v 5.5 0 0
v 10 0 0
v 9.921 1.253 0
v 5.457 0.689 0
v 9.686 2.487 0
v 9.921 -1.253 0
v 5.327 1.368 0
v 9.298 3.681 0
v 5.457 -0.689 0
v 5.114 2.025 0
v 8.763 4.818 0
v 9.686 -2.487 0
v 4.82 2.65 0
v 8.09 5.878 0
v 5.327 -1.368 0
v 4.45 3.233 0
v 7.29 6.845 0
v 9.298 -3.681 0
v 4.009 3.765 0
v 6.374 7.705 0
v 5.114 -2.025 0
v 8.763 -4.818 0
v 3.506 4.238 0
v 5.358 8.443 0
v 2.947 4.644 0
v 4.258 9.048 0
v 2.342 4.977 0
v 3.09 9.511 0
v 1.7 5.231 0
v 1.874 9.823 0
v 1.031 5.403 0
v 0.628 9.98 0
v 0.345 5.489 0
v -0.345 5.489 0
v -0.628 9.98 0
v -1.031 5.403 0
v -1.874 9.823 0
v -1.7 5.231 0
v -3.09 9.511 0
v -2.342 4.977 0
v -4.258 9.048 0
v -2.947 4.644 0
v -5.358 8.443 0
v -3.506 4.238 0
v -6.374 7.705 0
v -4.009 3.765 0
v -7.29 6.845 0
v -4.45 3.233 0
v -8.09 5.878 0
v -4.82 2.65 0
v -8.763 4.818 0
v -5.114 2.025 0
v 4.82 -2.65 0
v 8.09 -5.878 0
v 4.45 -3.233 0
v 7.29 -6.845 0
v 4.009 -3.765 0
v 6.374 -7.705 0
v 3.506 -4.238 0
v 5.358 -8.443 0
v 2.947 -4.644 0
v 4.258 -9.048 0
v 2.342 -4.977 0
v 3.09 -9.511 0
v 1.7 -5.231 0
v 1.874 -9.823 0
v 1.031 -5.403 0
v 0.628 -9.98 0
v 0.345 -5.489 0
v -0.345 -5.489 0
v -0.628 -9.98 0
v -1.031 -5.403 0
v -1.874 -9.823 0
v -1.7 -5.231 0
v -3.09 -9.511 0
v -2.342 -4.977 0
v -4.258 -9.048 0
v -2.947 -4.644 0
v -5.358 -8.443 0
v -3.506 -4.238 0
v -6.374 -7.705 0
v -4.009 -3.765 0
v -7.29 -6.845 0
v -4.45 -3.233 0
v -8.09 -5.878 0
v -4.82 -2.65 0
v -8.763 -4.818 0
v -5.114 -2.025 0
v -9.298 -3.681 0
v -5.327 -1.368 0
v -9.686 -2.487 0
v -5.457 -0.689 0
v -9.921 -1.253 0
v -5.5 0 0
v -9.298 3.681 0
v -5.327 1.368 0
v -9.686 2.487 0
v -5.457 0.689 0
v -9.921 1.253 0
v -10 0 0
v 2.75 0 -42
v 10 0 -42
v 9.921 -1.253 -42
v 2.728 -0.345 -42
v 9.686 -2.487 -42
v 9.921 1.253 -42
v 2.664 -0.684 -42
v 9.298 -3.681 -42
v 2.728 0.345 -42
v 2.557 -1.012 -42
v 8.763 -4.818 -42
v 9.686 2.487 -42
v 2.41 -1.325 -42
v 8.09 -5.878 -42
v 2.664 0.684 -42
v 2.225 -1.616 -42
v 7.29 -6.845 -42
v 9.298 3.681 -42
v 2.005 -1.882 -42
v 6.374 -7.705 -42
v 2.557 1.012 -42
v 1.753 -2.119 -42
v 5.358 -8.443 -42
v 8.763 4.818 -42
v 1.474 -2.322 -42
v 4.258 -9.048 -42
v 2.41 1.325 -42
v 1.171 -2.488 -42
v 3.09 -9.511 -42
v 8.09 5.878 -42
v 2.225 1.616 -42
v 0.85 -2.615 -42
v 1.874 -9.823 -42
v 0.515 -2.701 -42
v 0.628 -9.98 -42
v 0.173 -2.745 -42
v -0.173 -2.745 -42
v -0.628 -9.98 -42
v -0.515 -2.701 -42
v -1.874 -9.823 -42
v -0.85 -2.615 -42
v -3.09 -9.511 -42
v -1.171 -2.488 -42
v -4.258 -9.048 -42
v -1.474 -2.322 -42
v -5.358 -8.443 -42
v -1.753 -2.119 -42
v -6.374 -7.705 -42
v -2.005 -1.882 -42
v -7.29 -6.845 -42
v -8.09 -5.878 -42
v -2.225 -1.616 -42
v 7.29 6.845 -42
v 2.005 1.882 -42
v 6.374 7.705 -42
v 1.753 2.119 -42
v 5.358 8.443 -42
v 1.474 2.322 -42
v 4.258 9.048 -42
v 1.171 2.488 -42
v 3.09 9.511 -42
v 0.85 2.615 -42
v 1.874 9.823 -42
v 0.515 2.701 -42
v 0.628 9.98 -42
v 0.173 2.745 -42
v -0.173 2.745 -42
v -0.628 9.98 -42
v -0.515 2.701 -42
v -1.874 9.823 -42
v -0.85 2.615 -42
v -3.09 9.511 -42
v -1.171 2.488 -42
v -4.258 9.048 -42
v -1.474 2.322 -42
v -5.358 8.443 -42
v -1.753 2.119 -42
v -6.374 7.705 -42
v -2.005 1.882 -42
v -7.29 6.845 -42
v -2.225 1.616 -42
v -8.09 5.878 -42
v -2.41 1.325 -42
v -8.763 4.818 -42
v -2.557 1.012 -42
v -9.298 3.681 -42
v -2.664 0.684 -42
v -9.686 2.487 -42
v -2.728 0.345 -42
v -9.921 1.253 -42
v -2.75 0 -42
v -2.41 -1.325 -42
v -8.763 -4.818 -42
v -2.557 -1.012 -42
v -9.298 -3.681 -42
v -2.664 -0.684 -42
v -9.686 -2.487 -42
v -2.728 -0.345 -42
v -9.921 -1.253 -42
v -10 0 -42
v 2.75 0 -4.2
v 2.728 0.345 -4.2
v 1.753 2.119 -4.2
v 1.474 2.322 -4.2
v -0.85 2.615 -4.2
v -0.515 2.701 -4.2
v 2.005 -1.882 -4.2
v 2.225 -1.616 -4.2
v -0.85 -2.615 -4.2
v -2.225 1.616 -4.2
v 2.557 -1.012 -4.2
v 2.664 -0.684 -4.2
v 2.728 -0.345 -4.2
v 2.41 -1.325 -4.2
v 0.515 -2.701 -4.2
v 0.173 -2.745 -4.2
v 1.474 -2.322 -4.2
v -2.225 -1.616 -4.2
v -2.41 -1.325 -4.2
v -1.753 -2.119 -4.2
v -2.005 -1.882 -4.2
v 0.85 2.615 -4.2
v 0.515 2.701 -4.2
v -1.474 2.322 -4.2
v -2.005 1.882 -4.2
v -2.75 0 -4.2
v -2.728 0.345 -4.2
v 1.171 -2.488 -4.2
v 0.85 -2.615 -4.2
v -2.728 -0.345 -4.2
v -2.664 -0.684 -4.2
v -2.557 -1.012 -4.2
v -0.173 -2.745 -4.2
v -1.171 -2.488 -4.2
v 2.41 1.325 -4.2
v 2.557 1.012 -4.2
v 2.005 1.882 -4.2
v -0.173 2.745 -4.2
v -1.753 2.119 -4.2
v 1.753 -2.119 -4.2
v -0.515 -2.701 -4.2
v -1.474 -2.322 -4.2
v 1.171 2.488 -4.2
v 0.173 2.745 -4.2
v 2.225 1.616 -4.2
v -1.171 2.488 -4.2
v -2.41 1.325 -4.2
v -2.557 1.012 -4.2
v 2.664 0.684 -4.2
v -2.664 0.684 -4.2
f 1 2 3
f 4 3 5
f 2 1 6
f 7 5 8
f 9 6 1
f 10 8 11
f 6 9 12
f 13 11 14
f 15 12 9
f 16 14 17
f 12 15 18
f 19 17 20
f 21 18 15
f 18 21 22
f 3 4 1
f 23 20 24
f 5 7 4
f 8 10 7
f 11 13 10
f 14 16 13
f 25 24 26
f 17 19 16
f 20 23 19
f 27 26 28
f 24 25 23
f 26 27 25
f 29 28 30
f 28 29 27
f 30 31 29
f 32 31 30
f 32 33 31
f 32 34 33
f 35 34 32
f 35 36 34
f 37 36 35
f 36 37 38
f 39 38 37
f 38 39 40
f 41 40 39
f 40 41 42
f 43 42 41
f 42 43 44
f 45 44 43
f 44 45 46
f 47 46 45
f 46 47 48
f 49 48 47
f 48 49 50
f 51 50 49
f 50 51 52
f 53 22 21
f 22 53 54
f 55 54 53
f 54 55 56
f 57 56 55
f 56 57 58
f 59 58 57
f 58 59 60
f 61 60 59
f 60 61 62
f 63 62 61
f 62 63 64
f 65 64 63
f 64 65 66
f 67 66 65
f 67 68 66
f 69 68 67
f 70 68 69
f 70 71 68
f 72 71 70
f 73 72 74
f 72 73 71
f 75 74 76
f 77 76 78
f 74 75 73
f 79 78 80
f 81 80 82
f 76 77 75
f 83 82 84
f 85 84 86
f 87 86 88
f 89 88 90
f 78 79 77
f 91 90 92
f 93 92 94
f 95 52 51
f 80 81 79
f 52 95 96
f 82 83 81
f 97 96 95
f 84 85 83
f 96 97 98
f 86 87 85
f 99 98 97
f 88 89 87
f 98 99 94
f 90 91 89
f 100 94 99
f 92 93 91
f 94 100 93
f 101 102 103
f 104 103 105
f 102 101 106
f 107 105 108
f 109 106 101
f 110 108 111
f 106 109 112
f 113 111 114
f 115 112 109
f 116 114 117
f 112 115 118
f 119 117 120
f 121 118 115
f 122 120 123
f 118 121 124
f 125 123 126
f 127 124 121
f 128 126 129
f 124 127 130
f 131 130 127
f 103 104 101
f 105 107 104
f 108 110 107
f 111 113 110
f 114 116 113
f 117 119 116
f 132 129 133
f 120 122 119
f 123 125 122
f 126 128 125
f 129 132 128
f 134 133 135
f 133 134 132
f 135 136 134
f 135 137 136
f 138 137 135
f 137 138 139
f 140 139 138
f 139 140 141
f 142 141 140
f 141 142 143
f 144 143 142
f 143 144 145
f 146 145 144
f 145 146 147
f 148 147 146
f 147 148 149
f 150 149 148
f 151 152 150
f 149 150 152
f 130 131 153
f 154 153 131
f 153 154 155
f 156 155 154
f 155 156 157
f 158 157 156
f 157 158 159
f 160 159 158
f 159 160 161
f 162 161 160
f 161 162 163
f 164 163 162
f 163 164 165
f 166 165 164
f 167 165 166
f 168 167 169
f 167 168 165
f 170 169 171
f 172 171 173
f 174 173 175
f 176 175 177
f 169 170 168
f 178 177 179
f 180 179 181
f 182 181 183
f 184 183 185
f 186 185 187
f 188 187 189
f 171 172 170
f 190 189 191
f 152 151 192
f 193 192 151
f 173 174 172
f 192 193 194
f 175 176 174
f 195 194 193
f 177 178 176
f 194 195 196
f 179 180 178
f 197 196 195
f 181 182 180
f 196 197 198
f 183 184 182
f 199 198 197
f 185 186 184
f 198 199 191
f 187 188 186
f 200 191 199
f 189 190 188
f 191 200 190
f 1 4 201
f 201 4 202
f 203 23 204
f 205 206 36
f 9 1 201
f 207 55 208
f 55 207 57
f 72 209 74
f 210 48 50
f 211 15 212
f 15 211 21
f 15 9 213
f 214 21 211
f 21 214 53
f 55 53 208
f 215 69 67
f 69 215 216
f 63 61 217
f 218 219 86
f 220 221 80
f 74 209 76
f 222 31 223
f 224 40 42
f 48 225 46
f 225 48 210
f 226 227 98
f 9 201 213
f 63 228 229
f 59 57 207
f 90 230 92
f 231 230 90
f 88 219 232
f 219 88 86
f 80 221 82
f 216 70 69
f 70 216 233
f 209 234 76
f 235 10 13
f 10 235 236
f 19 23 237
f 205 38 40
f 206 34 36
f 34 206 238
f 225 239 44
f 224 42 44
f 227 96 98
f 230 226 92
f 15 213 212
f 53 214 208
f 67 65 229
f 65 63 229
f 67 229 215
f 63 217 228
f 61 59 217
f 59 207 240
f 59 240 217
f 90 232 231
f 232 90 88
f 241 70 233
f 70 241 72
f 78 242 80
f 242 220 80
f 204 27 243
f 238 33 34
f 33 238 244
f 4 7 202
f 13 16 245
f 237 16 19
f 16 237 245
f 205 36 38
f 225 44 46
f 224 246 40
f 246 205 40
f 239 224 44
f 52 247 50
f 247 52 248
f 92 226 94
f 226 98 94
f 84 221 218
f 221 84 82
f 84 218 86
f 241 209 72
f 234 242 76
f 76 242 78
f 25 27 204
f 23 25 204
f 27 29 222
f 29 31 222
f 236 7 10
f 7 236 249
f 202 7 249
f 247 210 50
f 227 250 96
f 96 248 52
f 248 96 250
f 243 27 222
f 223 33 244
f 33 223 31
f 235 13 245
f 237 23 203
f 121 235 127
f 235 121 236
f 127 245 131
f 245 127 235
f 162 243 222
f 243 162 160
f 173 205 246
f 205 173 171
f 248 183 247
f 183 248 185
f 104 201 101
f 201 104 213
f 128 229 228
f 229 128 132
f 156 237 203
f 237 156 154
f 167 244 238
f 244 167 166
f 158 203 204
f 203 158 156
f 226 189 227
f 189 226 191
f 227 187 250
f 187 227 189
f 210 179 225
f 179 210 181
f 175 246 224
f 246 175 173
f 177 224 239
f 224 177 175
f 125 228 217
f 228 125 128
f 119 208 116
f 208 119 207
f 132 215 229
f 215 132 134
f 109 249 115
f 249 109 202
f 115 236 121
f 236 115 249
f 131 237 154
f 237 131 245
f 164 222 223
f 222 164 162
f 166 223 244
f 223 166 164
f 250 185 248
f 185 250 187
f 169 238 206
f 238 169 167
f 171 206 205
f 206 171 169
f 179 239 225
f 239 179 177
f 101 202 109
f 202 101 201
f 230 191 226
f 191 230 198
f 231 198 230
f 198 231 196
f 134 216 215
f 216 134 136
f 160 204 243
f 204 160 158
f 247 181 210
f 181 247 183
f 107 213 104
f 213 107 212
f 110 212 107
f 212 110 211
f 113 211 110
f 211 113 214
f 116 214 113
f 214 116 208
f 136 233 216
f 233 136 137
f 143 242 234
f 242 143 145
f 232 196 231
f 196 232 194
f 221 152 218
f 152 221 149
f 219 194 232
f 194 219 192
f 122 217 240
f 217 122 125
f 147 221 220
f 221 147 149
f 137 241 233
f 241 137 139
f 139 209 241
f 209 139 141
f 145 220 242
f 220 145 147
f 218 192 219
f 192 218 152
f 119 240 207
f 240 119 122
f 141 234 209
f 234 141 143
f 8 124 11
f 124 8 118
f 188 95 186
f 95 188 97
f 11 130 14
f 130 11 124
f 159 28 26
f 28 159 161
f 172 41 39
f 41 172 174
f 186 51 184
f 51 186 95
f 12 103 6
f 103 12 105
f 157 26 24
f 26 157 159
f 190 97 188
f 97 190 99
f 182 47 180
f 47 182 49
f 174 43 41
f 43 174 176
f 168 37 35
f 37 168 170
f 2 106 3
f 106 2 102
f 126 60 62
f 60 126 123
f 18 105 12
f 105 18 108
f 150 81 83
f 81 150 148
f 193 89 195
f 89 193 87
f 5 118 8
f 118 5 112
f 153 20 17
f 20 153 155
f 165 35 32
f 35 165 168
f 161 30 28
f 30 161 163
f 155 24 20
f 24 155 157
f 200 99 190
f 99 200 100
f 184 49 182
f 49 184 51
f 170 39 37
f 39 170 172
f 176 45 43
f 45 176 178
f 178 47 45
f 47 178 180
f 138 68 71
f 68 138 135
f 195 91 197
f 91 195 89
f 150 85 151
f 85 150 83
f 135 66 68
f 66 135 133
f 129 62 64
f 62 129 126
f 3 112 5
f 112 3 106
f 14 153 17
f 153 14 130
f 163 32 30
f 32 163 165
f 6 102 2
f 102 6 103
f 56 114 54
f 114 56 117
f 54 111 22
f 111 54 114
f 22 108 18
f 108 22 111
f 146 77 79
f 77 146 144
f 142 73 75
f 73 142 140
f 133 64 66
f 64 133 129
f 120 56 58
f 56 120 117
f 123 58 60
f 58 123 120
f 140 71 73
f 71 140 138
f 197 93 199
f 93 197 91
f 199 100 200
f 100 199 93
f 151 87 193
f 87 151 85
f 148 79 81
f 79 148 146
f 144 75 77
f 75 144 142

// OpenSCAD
$fn = 50;


difference() {
	union() {
		translate(v = [0, 0, -42.0000000000]) {
			cylinder(h = 42, r = 10.0000000000);
		}
		cylinder(h = 0, r = 16.0000000000);
	}
	union() {
		translate(v = [0, 0, 0]) {
			rotate(a = [0, 0, 0]) {
				difference() {
					union() {
						#translate(v = [0, 0, -42.0000000000]) {
							cylinder(h = 42, r = 2.2500000000);
						}
						#translate(v = [0, 0, -4.2000000000]) {
							cylinder(h = 4.2000000000, r1 = 2.7500000000, r2 = 5.5000000000);
						}
						#translate(v = [0, 0, -42.0000000000]) {
							cylinder(h = 42, r = 2.7500000000);
						}
						#translate(v = [0, 0, -42.0000000000]) {
							cylinder(h = 42, r = 2.2500000000);
						}
					}
					union();
				}
			}
		}
	}
}
